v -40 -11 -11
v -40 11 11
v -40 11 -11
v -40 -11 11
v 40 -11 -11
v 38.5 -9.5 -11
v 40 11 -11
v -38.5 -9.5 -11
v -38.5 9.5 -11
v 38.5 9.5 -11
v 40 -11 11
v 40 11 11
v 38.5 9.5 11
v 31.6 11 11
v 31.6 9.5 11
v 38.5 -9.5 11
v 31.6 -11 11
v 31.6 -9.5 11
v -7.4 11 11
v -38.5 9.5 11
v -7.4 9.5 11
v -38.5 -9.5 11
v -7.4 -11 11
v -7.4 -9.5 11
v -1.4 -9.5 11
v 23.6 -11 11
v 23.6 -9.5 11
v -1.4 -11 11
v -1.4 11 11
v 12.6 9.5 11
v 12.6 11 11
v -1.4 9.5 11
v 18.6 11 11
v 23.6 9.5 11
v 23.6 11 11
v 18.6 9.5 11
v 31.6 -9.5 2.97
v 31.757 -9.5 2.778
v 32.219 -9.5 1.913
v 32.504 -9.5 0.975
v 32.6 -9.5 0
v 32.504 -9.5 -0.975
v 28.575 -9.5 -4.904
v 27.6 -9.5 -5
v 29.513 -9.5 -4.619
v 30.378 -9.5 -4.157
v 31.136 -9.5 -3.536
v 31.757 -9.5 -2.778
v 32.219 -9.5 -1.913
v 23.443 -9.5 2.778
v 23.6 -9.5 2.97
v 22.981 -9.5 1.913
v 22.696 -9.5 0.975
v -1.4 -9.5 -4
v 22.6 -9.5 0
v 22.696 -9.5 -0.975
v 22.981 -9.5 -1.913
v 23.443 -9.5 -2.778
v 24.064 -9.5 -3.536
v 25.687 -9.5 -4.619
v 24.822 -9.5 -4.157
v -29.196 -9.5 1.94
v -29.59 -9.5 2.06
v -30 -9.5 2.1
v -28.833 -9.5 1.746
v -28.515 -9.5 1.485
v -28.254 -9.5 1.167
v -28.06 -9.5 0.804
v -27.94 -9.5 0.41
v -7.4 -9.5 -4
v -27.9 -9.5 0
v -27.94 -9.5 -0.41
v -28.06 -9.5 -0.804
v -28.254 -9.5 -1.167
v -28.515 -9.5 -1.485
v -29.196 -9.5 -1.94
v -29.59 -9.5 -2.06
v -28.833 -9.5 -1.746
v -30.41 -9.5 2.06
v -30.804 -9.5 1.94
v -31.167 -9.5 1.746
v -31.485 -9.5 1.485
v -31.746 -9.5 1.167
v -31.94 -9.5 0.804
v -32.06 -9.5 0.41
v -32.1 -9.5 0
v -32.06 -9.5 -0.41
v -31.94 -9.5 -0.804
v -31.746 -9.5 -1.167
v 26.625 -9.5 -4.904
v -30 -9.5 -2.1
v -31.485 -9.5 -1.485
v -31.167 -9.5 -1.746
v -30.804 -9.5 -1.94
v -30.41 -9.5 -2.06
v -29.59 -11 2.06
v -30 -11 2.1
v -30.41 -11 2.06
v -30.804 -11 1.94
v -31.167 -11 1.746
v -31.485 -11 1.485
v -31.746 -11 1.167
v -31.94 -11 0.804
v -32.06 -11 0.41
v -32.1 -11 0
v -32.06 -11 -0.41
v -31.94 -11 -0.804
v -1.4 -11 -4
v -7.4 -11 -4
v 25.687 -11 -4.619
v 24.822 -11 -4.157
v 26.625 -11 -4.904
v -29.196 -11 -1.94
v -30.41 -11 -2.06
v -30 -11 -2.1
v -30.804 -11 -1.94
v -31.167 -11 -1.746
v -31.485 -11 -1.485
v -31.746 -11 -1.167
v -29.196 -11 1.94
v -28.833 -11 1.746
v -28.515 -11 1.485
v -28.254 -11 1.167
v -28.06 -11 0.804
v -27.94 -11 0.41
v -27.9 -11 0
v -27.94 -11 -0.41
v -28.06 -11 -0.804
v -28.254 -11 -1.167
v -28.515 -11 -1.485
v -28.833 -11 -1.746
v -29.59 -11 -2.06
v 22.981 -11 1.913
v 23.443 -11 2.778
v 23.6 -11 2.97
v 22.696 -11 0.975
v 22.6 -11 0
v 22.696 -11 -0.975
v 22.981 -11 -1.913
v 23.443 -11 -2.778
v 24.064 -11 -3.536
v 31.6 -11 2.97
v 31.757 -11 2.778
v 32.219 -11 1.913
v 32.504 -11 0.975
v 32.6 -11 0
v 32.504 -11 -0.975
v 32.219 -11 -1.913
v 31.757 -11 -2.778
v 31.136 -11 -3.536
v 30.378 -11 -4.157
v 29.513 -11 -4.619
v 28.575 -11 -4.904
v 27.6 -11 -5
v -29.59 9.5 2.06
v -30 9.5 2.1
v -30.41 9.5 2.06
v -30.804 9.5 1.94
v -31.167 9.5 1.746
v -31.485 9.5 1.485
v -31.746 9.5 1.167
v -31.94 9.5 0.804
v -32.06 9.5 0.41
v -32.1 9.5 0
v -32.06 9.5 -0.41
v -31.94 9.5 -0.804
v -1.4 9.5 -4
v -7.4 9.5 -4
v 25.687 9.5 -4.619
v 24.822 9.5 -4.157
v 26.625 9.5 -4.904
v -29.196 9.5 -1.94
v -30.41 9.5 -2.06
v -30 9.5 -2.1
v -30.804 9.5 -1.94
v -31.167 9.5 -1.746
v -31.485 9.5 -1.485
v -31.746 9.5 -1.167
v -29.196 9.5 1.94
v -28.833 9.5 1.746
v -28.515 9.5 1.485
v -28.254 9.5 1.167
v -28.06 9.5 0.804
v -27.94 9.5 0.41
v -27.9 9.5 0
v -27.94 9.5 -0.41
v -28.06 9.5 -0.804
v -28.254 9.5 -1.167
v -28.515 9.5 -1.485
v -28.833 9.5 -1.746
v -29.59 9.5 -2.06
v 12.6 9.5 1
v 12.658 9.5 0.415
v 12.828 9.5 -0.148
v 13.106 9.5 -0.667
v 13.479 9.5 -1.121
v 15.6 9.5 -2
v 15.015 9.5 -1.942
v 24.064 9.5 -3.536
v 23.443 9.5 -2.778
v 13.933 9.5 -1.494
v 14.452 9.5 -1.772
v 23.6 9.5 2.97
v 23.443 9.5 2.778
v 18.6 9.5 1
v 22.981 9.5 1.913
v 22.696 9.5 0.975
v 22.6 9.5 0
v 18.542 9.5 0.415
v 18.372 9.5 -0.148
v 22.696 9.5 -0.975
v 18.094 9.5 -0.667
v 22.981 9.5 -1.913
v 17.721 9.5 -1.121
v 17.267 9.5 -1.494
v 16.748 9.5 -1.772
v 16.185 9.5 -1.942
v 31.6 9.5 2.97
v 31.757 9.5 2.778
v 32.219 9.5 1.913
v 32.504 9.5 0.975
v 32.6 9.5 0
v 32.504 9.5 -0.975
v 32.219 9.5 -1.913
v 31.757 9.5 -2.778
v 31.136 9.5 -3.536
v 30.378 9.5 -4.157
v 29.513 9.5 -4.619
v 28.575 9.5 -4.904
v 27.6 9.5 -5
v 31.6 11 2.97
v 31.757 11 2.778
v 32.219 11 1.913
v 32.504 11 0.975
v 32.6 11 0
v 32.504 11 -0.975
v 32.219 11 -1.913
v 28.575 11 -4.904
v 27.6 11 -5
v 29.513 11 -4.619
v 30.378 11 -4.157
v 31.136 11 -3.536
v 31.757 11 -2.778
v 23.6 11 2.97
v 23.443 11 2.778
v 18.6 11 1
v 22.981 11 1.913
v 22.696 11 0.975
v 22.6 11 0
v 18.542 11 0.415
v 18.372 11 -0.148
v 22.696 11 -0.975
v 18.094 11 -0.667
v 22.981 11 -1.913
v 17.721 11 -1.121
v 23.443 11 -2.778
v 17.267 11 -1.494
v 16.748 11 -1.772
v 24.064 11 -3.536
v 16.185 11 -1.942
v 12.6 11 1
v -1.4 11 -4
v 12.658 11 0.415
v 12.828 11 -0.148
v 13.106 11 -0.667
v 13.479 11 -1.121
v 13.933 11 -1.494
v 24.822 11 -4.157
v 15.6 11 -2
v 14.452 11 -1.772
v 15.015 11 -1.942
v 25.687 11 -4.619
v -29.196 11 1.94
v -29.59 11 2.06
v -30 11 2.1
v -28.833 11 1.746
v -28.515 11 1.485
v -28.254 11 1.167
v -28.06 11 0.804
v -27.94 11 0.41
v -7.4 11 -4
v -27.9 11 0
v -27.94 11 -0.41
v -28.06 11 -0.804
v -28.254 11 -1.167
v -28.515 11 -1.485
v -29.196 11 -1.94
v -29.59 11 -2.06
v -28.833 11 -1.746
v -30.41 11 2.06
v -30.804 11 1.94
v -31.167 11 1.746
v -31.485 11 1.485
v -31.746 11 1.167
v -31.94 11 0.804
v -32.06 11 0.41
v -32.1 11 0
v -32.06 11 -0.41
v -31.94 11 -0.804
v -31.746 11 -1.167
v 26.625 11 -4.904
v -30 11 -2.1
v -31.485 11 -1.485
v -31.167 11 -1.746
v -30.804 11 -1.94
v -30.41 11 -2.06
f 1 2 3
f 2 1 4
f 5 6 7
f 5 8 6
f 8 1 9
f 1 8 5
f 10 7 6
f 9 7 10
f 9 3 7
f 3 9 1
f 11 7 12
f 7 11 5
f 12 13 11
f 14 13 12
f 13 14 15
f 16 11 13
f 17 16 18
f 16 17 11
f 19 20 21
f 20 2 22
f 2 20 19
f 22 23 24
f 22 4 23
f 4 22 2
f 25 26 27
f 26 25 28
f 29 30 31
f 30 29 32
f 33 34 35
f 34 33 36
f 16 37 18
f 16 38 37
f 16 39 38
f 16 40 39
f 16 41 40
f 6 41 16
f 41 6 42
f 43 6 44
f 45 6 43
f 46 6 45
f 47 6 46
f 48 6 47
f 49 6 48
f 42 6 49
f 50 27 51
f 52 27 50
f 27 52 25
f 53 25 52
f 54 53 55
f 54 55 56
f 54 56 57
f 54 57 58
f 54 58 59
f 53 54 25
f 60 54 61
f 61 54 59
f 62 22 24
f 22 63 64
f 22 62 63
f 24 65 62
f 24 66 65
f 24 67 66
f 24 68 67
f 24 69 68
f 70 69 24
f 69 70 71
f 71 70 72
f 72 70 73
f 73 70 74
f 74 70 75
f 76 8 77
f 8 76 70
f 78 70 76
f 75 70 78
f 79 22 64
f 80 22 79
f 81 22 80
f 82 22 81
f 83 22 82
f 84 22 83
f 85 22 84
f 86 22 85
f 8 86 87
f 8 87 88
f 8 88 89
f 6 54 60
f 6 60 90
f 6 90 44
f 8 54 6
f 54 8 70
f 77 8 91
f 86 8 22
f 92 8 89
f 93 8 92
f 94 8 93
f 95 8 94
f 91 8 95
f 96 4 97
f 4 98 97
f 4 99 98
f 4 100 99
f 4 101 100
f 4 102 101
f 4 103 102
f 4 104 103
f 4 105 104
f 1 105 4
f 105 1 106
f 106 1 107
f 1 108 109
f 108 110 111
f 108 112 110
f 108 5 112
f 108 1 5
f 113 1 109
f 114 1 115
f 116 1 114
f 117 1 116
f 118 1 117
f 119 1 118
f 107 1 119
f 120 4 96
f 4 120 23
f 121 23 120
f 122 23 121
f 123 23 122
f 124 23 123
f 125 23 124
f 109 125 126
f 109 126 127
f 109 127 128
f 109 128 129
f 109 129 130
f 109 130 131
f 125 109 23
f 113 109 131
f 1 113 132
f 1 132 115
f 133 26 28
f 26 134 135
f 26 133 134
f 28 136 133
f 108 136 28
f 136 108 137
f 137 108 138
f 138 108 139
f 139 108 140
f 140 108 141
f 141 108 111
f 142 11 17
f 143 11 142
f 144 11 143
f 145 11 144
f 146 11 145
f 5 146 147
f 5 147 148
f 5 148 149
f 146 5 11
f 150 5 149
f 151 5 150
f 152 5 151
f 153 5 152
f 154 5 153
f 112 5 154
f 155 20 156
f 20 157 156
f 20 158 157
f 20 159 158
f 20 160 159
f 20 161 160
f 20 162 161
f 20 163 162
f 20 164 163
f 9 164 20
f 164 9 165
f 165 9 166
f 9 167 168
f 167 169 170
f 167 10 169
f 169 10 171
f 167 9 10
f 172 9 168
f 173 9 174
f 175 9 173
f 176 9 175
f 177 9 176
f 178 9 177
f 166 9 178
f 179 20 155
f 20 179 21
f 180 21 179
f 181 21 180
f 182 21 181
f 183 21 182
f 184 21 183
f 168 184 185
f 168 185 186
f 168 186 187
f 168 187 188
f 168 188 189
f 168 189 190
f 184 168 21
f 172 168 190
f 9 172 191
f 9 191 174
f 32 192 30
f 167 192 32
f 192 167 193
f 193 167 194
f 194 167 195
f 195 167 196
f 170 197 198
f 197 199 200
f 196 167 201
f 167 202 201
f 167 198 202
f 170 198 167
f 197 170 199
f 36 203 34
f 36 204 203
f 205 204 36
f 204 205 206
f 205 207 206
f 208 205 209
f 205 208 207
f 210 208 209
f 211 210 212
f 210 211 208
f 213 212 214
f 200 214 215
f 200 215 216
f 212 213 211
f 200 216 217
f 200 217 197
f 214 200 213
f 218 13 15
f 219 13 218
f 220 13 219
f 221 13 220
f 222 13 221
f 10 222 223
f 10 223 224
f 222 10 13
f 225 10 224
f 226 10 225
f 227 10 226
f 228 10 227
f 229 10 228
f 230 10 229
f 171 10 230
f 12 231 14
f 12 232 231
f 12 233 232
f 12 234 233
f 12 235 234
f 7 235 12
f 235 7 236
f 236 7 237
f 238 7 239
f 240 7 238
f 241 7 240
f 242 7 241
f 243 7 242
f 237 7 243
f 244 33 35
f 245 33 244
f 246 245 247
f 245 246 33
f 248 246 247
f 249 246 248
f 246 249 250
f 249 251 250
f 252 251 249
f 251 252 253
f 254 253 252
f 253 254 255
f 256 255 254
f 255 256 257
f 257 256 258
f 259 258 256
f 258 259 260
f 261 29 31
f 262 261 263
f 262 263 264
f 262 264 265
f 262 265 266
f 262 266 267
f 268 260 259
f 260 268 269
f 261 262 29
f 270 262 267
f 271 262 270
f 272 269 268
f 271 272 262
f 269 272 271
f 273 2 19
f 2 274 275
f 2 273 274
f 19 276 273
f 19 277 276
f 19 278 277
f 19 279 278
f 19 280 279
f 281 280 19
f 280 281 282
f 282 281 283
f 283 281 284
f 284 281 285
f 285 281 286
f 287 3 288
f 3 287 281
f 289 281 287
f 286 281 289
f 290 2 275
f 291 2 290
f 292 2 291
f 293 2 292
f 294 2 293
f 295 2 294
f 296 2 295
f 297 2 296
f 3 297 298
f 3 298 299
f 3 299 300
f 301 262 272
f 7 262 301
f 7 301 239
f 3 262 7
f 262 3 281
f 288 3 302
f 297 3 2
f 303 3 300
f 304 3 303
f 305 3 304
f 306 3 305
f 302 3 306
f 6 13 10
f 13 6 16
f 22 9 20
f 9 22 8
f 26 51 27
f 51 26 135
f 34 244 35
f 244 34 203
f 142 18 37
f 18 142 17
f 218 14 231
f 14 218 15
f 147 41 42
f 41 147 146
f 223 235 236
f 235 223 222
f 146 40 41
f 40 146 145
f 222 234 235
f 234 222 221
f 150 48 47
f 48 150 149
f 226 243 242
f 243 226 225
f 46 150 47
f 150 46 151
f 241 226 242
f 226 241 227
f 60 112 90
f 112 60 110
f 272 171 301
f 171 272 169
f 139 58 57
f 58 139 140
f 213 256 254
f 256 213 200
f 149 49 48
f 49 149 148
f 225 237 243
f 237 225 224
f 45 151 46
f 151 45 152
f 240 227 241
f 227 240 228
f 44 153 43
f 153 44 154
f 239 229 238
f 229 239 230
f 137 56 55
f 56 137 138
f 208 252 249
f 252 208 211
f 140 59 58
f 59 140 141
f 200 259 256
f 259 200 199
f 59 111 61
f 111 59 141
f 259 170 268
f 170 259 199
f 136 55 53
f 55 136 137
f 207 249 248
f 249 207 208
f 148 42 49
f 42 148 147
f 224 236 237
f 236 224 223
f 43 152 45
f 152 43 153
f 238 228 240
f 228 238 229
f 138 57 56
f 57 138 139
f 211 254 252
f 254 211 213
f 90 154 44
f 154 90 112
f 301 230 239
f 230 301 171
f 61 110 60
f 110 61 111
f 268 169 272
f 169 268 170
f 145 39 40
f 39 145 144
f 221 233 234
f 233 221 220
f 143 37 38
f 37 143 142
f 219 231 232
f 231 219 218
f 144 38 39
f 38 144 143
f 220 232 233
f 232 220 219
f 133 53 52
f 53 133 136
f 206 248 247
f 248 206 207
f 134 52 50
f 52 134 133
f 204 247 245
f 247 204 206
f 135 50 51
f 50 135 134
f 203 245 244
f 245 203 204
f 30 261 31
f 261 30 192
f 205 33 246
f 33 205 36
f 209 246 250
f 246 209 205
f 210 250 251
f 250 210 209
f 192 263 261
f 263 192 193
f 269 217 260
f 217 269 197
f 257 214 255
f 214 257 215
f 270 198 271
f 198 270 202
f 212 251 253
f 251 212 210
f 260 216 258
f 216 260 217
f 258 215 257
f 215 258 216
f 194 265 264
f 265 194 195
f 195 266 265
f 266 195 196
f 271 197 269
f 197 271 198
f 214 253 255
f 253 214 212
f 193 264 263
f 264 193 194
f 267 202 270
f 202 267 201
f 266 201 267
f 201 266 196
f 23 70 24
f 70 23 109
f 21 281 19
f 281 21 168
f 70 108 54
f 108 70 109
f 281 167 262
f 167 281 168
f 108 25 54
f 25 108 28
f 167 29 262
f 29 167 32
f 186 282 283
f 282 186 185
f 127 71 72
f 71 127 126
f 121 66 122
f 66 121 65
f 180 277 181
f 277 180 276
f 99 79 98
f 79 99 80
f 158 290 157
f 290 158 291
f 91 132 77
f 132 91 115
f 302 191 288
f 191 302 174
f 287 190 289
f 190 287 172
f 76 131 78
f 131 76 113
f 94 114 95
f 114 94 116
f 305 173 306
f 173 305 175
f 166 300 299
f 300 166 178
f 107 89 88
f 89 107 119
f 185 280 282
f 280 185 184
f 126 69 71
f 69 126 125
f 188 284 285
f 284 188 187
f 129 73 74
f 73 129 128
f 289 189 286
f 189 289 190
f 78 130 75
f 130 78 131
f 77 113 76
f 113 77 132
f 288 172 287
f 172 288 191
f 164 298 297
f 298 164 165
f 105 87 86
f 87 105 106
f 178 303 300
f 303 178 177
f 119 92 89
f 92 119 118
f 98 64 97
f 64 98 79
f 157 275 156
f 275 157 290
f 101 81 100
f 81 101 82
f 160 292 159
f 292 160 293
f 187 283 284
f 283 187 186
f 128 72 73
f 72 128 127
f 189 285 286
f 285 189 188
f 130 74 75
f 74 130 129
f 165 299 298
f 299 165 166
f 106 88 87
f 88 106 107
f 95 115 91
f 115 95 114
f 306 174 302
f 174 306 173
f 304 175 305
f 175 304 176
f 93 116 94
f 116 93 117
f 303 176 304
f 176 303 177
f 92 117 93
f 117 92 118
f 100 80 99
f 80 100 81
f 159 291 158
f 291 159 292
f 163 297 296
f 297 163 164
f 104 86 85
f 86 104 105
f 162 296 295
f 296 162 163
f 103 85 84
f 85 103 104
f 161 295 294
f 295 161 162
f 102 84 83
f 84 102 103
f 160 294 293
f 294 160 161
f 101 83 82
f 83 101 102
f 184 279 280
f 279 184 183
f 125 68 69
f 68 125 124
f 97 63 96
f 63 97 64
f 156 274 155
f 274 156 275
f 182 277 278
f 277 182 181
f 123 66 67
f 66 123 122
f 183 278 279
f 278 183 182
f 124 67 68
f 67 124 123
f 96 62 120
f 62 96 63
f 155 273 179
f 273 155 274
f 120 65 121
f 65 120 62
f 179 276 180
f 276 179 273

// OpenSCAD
use <yellow_motor.scad>;


module motor(){
//translate([0,0.6,0])
rotate([180,0,0])
color("blue") yellow_motor();
}




l=80;
h=22;
w = 1.5;

bwhlr = 35/2;
swhlr = 23/2;
wheelw = 3.5;

side = 19/2+w/2;

module body(){
    translate([0,side,0])
    cube([l,w,h],center=true);

    translate([0,-side,0])
    cube([l,w,h],center=true);
 
    translate([l/2-w/2,0,0])
    cube([w,19,h],center=true);
    translate([-(l/2-w/2),0,0])
    cube([w,19,h],center=true);
}



module motor_shaft_cutter(){

    translate([0,0,-10]) {
        color("red") 
        cube([8,102,20],center=true);
    }

    difference(){    
     {rotate([90,0,0]) cylinder(r=5,h=100,center=true,$fn=32);}

    /*
    translate([3.5/2+1.5,0,0]) {
        color("blue") 
        cube([1.9,102,10],center=true);
        }
        
    translate([-(3.5/2+1.55),0,0]) {
        color("red") 
        cube([2,102,10],center=true);
    }*/
        
    }  
  
  
  //let notch for protruding round 
   translate([-12,-10,-11]) {
        color("red") 
        cube([6,20,20],center=true);
   }

  translate([-12,-10,-1]){
        rotate([90,0,0]) cylinder(r=3,h=20,center=true,$fn=32);
       }
    
       
    //for motor square notch
    translate([-32,0,-6])
    cube([6,30,20],center=true);

}


motor_disp = l/2-20;  //the amount to move motor to the +x
cutter_disp = l/2-20 +7.6; //the amount to move cutter relative to motor

//translate([motor_disp-0.5,0,0]) motor();


module frame(){
    difference(){
    body();

    translate([cutter_disp,0,0])motor_shaft_cutter();
    translate([-(l/2-10),0,0]){
    rotate([90,0,0]) cylinder(r=2.1,h=100,center=true,$fn=32);
    }

    }

}

rotate([180,0,0]) frame();
